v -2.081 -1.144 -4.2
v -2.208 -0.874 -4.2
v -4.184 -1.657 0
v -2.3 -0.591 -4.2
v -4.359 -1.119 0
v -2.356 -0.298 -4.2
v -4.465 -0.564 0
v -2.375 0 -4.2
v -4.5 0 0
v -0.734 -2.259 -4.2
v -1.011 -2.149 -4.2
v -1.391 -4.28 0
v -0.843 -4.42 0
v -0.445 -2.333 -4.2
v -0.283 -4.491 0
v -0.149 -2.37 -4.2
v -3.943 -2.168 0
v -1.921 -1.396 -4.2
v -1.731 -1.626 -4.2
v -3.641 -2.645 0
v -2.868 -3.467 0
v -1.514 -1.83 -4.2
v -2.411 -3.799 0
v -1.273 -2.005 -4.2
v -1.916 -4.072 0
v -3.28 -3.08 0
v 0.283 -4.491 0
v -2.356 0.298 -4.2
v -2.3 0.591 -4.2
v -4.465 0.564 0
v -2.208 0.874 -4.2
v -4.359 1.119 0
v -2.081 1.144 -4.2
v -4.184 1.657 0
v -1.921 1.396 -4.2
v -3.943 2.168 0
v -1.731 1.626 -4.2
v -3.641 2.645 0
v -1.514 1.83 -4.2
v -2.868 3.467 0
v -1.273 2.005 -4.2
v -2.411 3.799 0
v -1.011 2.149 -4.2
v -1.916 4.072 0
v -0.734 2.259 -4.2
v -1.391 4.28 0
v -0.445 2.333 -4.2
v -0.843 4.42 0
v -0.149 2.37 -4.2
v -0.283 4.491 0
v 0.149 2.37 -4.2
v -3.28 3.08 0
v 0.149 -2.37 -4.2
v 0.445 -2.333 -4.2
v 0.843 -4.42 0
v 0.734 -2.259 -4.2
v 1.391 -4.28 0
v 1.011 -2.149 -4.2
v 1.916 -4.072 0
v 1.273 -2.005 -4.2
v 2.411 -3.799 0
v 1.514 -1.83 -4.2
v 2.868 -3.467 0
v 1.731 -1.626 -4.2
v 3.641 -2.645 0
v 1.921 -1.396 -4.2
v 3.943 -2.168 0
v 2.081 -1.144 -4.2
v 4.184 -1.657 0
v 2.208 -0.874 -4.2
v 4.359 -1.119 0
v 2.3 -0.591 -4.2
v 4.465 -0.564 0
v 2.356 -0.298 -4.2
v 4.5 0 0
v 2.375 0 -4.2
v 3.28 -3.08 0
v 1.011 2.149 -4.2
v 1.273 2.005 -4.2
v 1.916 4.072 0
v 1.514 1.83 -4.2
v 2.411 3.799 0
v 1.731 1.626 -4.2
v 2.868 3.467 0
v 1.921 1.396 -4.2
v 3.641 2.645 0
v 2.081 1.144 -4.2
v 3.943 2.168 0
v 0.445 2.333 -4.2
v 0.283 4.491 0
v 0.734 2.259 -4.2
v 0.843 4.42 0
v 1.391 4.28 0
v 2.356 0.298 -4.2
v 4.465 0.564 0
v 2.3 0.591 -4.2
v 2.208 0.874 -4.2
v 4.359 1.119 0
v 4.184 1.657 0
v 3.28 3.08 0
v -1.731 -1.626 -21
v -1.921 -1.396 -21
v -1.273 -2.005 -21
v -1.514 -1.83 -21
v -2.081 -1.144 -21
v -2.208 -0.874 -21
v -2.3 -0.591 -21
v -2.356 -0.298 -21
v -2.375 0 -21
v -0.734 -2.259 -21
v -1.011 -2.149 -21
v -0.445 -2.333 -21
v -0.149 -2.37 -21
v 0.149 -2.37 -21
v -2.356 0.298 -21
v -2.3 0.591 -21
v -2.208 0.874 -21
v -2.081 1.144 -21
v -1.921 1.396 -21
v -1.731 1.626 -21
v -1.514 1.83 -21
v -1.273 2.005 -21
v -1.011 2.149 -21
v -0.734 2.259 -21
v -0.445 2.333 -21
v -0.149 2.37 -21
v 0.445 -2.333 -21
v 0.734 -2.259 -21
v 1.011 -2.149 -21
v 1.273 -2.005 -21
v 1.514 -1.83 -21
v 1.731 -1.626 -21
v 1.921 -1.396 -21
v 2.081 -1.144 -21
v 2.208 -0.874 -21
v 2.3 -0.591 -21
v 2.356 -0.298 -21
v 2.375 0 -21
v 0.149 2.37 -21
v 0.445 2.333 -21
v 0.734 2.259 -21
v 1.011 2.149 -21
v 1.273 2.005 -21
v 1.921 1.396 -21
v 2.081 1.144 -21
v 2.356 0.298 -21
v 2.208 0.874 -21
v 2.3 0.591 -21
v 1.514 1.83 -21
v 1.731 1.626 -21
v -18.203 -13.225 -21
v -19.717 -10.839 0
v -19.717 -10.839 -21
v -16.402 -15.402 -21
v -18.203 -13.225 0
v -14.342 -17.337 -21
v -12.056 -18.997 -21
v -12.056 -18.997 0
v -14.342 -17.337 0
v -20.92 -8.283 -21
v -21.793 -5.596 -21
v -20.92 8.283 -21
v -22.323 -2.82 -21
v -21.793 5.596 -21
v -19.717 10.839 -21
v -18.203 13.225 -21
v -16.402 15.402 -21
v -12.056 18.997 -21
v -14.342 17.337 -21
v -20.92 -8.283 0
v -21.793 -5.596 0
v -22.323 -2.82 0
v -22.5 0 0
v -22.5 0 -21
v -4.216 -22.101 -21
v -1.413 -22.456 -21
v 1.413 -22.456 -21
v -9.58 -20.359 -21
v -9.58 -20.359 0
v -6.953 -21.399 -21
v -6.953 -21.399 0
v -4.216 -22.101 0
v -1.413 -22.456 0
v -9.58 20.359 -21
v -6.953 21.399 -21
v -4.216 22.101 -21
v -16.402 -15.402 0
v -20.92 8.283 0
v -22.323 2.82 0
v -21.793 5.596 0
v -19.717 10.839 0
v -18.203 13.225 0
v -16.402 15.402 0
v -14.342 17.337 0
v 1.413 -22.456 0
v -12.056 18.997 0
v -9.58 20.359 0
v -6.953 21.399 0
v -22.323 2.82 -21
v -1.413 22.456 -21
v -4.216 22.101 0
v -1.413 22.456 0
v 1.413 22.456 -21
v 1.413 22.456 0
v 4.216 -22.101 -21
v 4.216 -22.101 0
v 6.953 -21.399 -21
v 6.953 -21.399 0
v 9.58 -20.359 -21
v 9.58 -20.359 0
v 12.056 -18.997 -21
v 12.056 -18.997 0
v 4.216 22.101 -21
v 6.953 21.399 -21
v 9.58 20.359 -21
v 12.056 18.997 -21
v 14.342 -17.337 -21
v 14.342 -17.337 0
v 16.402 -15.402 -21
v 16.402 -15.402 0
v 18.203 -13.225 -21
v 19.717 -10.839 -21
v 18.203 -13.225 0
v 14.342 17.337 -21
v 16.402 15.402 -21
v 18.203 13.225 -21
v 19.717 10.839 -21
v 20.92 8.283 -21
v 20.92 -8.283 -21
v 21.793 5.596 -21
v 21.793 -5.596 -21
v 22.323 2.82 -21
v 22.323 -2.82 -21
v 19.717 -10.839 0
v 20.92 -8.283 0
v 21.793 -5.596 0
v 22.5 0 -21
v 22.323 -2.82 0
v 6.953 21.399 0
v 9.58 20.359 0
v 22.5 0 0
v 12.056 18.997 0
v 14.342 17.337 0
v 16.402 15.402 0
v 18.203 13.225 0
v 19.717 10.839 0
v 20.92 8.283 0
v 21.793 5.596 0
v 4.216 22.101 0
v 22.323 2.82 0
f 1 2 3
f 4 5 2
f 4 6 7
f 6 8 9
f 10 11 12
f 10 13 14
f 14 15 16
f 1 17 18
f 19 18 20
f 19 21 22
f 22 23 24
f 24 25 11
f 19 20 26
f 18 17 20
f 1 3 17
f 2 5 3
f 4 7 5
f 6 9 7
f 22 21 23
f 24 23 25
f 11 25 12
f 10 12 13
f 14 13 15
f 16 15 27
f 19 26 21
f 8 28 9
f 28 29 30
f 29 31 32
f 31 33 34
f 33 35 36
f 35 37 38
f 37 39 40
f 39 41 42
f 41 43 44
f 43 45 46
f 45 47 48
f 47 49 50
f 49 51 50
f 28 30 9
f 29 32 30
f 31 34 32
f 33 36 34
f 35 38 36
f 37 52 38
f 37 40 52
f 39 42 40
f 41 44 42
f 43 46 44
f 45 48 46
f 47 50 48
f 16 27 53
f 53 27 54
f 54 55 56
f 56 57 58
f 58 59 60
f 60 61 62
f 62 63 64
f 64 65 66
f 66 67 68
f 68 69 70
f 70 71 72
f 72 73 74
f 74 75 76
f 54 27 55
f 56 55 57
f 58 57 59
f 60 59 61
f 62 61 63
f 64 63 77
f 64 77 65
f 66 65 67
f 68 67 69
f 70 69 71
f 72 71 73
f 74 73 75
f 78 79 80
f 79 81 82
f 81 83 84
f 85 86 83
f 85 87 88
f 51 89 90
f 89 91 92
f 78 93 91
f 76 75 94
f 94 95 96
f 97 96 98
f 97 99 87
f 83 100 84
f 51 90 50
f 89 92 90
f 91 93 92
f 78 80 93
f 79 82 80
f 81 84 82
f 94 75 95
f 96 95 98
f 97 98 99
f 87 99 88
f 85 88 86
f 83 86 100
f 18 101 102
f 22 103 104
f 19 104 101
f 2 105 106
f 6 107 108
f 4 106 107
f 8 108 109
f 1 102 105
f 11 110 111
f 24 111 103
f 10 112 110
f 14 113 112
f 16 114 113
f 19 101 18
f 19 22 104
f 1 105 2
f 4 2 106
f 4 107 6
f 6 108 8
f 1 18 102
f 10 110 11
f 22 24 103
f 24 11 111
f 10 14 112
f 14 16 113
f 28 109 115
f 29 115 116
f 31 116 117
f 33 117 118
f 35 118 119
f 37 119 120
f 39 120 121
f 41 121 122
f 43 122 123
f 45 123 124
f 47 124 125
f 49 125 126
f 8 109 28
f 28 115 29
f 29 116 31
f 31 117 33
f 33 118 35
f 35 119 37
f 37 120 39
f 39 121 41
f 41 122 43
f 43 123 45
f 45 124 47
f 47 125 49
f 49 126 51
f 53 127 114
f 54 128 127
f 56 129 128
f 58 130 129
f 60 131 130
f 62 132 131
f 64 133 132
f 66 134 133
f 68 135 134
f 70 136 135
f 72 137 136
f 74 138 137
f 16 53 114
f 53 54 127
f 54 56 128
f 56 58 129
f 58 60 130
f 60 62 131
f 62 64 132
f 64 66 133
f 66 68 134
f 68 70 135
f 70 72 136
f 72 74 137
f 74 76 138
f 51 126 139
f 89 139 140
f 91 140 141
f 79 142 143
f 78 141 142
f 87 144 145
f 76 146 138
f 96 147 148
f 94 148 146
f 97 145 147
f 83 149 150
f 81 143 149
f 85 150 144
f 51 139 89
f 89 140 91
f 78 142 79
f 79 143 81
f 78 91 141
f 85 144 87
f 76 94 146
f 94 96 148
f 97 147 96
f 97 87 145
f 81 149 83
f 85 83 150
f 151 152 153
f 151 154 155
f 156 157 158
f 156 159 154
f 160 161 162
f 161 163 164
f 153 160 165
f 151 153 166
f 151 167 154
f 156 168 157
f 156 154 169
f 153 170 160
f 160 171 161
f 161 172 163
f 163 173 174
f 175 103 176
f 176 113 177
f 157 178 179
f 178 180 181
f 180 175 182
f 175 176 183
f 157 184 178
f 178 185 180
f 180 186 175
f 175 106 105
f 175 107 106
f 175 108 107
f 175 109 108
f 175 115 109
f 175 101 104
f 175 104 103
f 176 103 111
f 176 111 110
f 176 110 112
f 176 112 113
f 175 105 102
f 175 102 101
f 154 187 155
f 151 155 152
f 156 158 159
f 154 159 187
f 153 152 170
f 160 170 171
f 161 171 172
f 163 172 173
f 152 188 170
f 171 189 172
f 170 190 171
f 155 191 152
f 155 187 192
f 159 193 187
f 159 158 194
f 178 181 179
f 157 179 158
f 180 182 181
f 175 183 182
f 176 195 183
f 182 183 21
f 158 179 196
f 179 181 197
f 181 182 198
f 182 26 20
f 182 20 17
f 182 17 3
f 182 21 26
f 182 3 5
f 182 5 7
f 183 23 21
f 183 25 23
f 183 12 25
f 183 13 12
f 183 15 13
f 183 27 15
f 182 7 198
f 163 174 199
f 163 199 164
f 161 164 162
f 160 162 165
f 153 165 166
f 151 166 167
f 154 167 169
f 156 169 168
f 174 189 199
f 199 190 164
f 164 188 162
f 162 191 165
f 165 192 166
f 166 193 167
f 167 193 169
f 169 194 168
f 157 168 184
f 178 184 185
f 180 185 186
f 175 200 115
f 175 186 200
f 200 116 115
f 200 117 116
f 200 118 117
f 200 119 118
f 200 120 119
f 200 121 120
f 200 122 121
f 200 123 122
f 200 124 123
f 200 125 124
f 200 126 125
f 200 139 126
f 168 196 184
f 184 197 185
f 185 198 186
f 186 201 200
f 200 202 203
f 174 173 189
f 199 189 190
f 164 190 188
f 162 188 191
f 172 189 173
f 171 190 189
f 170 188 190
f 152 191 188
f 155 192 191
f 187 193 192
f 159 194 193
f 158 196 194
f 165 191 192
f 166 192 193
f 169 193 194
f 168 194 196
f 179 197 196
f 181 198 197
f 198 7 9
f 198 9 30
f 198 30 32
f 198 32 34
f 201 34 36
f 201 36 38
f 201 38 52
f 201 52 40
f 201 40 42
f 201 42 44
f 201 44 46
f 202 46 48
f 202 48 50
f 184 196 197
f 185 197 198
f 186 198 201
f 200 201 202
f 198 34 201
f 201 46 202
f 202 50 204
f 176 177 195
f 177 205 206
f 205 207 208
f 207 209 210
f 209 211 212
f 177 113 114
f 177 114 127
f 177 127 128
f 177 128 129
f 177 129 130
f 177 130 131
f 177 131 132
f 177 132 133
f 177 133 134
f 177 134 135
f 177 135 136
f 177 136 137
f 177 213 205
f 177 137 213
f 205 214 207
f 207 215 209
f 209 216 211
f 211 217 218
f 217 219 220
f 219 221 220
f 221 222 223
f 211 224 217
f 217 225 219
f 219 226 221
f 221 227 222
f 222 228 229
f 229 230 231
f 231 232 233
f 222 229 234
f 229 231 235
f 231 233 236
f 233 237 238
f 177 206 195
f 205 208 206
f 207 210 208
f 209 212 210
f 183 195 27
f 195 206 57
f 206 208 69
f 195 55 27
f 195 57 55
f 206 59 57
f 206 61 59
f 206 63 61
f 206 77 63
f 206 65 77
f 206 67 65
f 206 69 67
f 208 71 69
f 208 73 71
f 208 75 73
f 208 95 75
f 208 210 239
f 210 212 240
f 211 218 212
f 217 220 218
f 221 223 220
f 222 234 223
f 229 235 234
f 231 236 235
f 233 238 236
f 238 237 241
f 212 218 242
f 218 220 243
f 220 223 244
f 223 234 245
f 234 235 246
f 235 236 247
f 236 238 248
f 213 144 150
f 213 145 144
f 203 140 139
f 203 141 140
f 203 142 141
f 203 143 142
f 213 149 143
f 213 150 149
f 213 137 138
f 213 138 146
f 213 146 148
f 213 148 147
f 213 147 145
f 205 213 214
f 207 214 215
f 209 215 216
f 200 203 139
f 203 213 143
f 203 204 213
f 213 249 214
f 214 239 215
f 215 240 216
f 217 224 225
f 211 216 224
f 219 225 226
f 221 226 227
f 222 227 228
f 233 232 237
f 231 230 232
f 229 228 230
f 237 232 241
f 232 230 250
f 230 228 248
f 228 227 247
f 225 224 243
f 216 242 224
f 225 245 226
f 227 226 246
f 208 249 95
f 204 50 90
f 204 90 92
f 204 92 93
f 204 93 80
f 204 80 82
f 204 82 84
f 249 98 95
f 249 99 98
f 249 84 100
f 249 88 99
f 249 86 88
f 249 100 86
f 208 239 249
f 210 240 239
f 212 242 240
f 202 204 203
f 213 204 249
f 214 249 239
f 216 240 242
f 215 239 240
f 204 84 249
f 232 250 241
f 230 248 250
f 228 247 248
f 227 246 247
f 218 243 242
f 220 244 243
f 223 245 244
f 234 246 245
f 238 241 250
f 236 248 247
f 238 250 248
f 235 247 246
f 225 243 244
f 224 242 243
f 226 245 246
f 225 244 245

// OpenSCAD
$fn = 50;

difference() {
	union() {
		translate(v = [0, 0, -21.0]) {
			cylinder(h = 21, r = 22.5);
		}
	}
	union() {
		translate(v = [0, 0, 0]) {
			rotate(a = [0, 0, 0]) {
				difference() {
					union() {
						translate(v = [0, 0, -24.0]) {
							cylinder(h = 24, r = 2.25);
						}
						translate(v = [0, 0, -4.2]) {
							cylinder(h = 4.2, r1 = 2.375, r2 = 4.5);
						}
						translate(v = [0, 0, -24.0]) {
							cylinder(h = 24, r = 2.375);
						}
						translate(v = [0, 0, -24.0]) {
							cylinder(h = 24, r = 2.25);
						}
					}
					union();
				}
			}
		}
	}
}
